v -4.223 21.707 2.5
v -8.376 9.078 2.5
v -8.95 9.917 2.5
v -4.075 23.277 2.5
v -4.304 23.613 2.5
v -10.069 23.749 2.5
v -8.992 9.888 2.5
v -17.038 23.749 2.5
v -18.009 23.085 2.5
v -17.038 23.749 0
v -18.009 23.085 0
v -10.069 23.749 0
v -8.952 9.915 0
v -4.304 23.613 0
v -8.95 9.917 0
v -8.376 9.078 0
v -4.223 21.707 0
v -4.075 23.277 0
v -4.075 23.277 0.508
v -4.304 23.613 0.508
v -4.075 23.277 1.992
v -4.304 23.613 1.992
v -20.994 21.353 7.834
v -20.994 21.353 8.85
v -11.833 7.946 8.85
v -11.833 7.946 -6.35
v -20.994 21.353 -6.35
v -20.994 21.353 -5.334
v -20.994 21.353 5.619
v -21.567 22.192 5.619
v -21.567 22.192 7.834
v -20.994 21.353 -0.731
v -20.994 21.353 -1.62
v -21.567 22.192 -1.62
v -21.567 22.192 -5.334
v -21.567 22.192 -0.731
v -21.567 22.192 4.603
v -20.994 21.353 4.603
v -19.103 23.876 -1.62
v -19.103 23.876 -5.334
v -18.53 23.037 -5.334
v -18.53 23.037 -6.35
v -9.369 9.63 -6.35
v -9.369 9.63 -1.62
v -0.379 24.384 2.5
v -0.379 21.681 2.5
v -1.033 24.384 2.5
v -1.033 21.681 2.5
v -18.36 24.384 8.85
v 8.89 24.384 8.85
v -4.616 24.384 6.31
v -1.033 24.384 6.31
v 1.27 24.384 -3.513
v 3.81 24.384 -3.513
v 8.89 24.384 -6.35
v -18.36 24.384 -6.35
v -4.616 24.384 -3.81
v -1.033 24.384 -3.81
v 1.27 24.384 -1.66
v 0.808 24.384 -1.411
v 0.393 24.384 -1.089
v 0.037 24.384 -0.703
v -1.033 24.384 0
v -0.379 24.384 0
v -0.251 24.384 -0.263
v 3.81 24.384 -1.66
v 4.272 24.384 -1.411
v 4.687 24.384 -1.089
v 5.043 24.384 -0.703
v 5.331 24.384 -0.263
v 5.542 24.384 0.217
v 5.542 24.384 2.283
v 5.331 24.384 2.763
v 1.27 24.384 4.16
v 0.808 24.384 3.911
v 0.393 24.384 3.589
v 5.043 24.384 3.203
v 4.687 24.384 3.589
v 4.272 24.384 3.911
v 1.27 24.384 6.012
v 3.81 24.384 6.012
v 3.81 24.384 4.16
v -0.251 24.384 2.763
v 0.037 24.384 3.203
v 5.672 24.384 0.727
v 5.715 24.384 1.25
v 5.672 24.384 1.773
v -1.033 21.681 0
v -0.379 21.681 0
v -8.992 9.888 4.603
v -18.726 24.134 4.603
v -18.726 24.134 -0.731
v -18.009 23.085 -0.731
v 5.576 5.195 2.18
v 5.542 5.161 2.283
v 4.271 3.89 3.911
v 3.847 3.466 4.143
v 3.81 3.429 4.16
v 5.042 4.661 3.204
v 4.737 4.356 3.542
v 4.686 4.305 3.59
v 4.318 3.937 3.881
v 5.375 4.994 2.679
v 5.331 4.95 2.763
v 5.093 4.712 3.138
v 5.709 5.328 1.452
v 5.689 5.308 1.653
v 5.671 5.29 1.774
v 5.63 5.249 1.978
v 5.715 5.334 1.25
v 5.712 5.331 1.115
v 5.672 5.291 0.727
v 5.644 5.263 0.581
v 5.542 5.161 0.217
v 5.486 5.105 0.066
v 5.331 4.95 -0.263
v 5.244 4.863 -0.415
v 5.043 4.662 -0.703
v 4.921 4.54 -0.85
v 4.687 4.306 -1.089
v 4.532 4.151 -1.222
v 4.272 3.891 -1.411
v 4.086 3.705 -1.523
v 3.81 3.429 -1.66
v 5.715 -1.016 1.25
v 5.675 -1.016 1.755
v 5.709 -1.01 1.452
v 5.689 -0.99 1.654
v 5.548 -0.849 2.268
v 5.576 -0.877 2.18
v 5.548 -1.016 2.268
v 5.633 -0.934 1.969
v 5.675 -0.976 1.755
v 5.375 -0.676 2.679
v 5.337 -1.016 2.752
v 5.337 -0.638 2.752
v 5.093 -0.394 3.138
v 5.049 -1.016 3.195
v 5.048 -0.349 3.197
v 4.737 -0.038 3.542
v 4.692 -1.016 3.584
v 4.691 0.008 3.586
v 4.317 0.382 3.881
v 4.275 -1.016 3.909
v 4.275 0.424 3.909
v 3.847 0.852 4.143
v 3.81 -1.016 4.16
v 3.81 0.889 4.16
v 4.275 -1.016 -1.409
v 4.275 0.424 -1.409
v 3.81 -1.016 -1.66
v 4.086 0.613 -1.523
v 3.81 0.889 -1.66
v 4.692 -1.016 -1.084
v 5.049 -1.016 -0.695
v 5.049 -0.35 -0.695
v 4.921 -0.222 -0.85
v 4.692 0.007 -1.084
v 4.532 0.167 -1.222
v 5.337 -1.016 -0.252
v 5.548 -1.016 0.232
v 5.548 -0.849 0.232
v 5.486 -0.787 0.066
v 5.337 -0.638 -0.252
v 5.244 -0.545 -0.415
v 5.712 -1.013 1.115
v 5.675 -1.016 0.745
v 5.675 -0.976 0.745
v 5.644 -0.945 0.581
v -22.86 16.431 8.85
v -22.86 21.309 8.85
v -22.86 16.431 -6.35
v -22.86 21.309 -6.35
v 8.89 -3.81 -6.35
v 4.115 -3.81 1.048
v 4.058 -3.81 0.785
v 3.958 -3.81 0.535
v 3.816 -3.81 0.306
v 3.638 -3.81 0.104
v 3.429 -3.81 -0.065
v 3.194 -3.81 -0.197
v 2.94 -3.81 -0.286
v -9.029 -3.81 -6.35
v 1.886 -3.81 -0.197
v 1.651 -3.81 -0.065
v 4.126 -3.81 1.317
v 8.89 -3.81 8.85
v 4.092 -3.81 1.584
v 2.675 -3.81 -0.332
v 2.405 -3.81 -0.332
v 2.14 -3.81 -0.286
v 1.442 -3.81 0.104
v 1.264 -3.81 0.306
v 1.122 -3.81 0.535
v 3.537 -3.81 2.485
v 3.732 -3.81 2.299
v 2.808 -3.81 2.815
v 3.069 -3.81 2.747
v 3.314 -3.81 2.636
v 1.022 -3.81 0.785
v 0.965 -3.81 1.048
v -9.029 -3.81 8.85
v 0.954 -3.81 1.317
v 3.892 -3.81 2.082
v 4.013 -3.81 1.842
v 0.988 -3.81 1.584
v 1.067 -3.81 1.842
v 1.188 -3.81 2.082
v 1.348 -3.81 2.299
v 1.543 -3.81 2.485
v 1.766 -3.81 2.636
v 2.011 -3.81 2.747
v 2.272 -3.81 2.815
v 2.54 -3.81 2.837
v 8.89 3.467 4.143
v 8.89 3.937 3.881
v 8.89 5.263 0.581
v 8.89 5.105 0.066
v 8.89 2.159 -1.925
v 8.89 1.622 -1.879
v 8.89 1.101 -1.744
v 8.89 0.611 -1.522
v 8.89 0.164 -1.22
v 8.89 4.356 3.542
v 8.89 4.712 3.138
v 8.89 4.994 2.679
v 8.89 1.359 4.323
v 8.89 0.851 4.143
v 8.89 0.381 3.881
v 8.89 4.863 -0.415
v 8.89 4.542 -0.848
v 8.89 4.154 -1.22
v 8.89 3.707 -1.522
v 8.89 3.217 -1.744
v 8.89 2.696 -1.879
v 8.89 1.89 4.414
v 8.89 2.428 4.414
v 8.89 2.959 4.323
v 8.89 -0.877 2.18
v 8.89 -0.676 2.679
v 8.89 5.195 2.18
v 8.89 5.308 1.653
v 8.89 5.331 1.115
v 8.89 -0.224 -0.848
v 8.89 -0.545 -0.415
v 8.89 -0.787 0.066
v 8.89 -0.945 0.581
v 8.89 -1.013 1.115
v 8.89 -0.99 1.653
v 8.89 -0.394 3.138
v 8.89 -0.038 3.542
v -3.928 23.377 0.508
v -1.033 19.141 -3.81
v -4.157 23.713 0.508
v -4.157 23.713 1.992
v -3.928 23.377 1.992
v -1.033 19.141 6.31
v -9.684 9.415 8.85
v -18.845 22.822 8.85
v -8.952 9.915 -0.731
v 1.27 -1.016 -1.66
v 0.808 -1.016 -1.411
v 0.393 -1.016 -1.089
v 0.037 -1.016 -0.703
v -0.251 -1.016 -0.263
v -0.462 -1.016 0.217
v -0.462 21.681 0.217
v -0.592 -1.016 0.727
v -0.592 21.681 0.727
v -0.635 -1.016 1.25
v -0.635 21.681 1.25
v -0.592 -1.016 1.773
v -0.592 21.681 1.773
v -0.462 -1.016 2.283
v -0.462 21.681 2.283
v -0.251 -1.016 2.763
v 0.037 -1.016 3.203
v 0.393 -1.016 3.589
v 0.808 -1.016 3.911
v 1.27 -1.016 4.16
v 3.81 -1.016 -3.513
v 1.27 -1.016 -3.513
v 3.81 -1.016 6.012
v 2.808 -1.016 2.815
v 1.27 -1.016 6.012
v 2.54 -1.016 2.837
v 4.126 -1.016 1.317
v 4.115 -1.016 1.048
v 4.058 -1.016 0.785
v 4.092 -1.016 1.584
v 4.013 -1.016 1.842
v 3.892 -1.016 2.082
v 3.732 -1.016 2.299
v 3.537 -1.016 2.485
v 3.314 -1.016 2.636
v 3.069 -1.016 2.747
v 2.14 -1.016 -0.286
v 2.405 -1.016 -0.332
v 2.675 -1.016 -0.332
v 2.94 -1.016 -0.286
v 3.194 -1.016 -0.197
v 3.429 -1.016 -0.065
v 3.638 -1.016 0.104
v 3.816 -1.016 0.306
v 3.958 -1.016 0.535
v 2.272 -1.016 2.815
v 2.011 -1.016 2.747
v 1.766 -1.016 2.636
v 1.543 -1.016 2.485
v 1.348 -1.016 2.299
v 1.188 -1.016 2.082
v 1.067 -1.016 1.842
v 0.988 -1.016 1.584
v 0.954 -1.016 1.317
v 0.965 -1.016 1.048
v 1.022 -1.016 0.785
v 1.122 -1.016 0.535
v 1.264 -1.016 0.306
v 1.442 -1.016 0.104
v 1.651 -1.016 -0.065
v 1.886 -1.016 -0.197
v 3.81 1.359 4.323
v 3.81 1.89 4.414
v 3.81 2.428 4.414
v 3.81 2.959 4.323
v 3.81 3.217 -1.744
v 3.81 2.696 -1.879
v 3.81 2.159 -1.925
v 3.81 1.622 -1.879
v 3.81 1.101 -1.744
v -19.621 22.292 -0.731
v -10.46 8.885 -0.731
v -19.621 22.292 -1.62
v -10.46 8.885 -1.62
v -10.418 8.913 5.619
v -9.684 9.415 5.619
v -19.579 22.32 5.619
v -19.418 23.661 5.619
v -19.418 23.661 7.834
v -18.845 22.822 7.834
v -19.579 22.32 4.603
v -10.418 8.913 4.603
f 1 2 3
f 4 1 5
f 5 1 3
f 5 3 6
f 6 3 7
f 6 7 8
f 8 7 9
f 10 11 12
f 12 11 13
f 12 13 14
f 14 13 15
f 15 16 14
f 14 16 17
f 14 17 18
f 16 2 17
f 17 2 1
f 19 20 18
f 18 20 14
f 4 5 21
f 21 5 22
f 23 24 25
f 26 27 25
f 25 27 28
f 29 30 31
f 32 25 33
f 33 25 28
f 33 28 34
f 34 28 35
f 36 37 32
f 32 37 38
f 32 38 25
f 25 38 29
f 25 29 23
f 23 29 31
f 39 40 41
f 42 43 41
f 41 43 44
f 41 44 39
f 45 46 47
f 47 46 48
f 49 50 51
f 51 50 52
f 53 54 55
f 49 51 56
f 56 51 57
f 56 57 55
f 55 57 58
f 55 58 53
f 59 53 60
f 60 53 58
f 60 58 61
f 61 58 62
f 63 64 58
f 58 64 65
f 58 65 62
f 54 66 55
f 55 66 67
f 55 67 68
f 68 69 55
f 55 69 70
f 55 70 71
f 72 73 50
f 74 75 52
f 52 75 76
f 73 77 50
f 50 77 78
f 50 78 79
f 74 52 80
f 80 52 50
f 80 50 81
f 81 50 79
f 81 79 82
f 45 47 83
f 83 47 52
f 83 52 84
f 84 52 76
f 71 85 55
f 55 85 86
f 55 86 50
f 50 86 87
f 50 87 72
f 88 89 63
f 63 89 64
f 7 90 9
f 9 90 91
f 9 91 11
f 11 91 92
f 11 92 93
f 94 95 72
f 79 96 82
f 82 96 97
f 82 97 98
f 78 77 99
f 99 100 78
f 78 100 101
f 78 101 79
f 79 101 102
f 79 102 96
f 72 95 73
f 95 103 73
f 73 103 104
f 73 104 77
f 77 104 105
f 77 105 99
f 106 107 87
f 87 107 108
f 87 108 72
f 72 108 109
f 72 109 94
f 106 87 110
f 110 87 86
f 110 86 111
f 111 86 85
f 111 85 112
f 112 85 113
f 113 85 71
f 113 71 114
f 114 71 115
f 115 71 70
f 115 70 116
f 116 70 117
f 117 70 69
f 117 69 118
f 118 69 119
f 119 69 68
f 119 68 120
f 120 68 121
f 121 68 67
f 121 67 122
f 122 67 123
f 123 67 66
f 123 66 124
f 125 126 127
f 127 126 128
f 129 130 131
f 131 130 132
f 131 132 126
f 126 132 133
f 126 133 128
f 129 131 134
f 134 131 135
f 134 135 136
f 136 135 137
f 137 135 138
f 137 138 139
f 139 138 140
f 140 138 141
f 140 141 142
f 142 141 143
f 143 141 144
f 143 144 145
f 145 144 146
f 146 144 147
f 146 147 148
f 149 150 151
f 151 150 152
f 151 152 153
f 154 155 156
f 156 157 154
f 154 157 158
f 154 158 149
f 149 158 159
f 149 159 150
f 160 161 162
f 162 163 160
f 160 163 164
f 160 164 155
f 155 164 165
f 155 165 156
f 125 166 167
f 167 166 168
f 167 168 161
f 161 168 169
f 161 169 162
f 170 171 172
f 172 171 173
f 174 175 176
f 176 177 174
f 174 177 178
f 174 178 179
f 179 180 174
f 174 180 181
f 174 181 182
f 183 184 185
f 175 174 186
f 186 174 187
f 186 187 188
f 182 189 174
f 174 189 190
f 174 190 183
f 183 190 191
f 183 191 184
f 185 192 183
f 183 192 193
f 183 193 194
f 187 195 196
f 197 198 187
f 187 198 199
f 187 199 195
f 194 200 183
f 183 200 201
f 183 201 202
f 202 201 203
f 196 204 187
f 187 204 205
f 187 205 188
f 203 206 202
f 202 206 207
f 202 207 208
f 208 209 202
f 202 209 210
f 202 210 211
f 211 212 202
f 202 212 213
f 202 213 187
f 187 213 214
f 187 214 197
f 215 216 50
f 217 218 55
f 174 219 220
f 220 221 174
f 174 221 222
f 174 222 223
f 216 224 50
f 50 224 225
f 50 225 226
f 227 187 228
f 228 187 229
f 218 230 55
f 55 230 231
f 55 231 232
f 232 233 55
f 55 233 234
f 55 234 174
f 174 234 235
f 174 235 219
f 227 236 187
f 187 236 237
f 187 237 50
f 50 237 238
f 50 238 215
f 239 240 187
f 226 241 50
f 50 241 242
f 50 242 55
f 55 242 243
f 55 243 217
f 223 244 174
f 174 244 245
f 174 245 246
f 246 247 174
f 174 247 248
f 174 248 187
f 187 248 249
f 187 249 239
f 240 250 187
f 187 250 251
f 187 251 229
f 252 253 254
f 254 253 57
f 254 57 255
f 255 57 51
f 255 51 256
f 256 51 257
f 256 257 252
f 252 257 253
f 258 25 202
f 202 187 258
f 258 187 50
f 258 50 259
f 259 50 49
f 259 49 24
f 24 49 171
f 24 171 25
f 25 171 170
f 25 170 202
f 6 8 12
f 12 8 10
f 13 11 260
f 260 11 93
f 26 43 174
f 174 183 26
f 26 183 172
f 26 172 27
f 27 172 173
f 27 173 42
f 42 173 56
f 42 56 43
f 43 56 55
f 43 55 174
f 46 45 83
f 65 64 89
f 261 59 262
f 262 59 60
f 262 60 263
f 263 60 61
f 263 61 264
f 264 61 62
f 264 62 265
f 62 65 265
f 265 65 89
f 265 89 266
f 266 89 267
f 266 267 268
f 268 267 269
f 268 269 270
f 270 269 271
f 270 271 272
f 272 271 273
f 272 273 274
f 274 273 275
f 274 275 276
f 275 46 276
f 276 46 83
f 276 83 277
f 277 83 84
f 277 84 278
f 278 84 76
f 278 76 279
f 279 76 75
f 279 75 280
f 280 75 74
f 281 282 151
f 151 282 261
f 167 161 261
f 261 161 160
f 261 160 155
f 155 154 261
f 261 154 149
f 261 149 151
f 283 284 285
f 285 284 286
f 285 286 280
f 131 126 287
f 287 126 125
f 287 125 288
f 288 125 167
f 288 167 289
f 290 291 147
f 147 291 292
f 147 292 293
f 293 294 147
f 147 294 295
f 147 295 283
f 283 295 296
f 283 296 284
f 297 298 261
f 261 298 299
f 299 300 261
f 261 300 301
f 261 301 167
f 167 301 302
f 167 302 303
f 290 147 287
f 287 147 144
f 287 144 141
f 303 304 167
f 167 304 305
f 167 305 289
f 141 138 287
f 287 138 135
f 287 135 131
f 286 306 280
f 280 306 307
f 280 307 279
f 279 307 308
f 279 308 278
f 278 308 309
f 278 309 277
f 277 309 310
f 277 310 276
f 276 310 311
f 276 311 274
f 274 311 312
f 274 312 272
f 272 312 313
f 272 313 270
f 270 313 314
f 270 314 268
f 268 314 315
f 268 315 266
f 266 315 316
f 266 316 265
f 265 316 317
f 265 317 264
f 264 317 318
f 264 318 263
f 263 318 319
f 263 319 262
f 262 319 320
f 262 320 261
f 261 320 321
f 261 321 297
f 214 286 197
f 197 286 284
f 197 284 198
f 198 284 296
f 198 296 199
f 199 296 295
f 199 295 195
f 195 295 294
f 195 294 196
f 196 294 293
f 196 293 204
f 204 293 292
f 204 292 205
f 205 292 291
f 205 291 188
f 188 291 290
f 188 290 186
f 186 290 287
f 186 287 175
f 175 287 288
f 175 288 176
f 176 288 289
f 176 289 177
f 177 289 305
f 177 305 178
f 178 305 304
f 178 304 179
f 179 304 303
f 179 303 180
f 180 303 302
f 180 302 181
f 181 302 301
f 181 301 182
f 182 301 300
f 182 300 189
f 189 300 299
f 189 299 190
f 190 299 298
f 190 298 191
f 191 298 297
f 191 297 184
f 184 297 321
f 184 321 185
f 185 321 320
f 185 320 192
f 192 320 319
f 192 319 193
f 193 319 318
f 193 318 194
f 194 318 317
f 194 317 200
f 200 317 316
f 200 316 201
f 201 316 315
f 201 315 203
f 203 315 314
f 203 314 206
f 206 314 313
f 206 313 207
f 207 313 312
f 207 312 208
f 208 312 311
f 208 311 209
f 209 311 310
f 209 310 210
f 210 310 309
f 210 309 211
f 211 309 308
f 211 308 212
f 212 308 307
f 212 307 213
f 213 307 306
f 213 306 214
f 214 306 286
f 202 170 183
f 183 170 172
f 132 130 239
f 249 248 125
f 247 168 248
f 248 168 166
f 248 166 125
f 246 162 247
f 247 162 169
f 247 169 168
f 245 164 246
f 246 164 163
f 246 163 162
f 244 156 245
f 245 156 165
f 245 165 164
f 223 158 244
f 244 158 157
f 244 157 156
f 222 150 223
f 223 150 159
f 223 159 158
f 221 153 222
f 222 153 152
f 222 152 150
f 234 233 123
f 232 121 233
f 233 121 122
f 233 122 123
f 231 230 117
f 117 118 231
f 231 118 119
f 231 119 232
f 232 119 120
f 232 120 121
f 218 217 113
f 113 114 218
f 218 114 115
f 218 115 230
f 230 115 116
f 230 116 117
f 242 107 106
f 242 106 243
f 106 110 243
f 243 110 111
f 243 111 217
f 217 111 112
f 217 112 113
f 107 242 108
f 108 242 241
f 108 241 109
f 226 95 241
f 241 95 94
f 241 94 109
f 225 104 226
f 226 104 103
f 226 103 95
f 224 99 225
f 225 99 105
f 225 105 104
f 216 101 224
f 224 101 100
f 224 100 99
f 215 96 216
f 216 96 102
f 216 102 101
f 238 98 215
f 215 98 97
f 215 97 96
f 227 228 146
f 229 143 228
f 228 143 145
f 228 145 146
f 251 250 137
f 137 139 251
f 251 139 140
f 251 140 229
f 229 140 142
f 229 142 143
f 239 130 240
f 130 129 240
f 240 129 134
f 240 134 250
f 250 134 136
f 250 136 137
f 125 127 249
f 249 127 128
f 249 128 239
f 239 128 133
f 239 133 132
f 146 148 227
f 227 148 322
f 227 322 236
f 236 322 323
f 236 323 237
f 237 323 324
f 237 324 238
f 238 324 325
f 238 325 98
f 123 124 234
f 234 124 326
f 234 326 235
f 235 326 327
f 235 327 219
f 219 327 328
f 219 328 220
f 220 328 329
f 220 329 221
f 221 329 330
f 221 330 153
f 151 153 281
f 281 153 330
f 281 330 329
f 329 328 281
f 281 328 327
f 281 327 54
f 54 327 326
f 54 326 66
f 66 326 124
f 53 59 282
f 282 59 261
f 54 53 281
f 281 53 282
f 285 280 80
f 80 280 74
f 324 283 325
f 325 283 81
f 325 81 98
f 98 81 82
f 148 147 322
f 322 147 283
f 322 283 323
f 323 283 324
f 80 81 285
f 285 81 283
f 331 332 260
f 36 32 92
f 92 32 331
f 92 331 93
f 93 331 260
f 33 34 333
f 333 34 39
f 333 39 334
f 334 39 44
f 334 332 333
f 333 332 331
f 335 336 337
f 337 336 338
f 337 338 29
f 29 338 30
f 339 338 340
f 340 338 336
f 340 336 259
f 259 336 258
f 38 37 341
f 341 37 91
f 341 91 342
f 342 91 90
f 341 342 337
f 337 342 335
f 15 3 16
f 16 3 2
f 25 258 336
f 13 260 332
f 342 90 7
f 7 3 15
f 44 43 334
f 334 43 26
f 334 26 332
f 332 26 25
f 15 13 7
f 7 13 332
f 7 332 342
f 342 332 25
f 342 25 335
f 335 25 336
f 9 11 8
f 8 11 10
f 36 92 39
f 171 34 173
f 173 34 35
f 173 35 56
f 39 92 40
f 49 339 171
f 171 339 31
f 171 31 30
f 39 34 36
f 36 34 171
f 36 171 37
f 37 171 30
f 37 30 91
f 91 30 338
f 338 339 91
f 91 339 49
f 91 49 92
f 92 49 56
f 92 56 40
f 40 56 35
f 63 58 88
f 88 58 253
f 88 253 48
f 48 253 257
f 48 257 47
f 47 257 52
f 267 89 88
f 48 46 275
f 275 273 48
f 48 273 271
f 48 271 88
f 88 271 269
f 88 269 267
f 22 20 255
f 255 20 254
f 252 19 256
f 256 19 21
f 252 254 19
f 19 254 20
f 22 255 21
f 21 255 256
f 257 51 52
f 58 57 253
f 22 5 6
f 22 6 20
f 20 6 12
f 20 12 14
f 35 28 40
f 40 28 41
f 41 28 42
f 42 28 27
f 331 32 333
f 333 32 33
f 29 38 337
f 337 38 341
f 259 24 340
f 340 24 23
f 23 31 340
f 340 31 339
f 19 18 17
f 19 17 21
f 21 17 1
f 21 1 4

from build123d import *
from build123d.topology import SkipClean

# Parameters (mm, degrees)
BOSS_EXTRUDE1_DEPTH     = 2.5
BOSS_EXTRUDE1_2_DEPTH   = 2.5
BOSS_EXTRUDE2_DEPTH     = 6.35
BOSS_EXTRUDE3_DEPTH     = 6.35
SKETCH4_R               = 3.175
CUT_EXTRUDE1_DEPTH      = 25.4
SKETCH5_R               = 1.5875
CUT_EXTRUDE2_DEPTH      = 25.4
CUT_EXTRUDE3_DEPTH      = 25.4
CUT_EXTRUDE4_REACH      = 43
CUT_EXTRUDE4_END_RADIUS = 3.175
CUT_EXTRUDE5_REACH      = 39.36
SKETCH8_W               = 2.54
SKETCH8_H               = 9.525
SKETCH9_W               = 0.508
SKETCH9_H               = 15.2
BOSS_EXTRUDE4_DEPTH     = 17
BOSS_EXTRUDE5_DEPTH     = 1.016
SKETCH11_W              = 1.176658287
SKETCH11_H              = 2.5
SKETCH11_W_2            = 2.433787944
SKETCH11_H_2            = 15.2
BOSS_EXTRUDE6_DEPTH     = 1.27
CUT_EXTRUDE6_DEPTH      = 38.864332241
BOSS_EXTRUDE7_START     = 2.54
BOSS_EXTRUDE7_DEPTH     = 2.54
BOSS_EXTRUDE8_DEPTH     = 2.54
BOSS_EXTRUDE9_DEPTH     = 0.508
BOSS_EXTRUDE10_DEPTH    = 0.508
CUT_EXTRUDE7_DEPTH      = 3.81
CUT_EXTRUDE8_DEPTH      = 3.81
BOSS_EXTRUDE11_DEPTH    = 3.81
SKETCH21_W              = 1.016
SKETCH21_H              = 1.016
SKETCH21_W_2            = 0.889
BOSS_EXTRUDE12_DEPTH    = 3.302
BOSS_EXTRUDE13_DEPTH    = 3.81


with BuildPart() as part:
    # Sketch1 → Boss-Extrude1 (new body)
    with BuildSketch(Plane.XY):
        Polygon((5.08, 0), (0, 0), (0, 19.141079028), (-1.033059908, 19.141079028), (-3.75575709, 23.125698967), (-8.376397661, 9.077684872), (-11.679025045, 6.820994294), (-21.26996, 20.857160675), (-22.86, 19.770683798), (-22.86, -3.81), (8.89, -3.81), (8.89, 24.384), (5.08, 24.384), align=None)
    extrude(amount=BOSS_EXTRUDE1_DEPTH)



with BuildPart() as body_2:
    # Sketch1 → Boss-Extrude1 2 (new body)
    with BuildSketch(Plane.XY):
        Polygon((-10.069369191, 23.749), (-4.328956497, 23.964566322), (-4.615556201, 24.384), (-16.108492032, 24.384), (-17.03780348, 23.749), align=None)
    extrude(amount=BOSS_EXTRUDE1_2_DEPTH)


with BuildPart() as part_1:
    add(part.part)

    add(body_2.part)  # Boss-Extrude2 merges body 2
    # Sketch2 → Boss-Extrude2 (add)
    with BuildSketch(Plane.XY.offset(2.5)):
        Polygon((-11.679025045, 6.820994294), (-21.26996, 20.857160675), (-22.86, 19.770683798), (-22.86, -3.81), (8.89, -3.81), (8.89, 24.384), (5.08, 24.384), (5.08, 0), (0, 0), (0, 19.141079028), (-1.033059908, 19.141079028), (-3.75575709, 23.125698967), (-8.376397661, 9.077684872), align=None)
        Polygon((-16.108492032, 24.384), (-18.00931945, 23.085161582), (-8.418384495, 9.048995201), (-8.376397661, 9.077684872), (-3.75575709, 23.125698967), (-1.033059908, 19.141079028), (0, 19.141079028), (0, 0), (5.08, 0), (5.08, 24.384), align=None)
    extrude(amount=BOSS_EXTRUDE2_DEPTH)

    # Sketch3 → Boss-Extrude3 (add)
    with BuildSketch(Plane(origin=(0, 0, 0), x_dir=(-1, 0, 0), z_dir=(0, 0, -1))):
        Polygon((-8.89, 24.384), (-8.89, -3.81), (22.86, -3.81), (22.86, 19.770683798), (21.26996, 20.857160675), (11.679025045, 6.820994294), (8.376397661, 9.077684872), (18.00931945, 23.085161582), (16.108492032, 24.384), align=None)
    extrude(amount=BOSS_EXTRUDE3_DEPTH)

    # Sketch4 → Cut-Extrude1 (cut)
    with BuildSketch(Plane(origin=(0, 24.384, 0), x_dir=(1, 0, 0), z_dir=(0, 1, 0))):
        with Locations(Location((2.54, -1.25, 0), (0, 0, 270))):
            Circle(SKETCH4_R)
    extrude(amount=-CUT_EXTRUDE1_DEPTH, mode=Mode.SUBTRACT)

    # Sketch5 → Cut-Extrude2 (cut)
    with BuildSketch(Plane(origin=(0, -1.016, 0), x_dir=(1, 0, 0), z_dir=(0, 1, 0))):
        with Locations(Location((2.54, -1.25, 0), (0, 0, 270))):
            Circle(SKETCH5_R)
    extrude(amount=-CUT_EXTRUDE2_DEPTH, mode=Mode.SUBTRACT)

    # Sketch6 → Cut-Extrude3 (cut)
    with BuildSketch(Plane.XY.offset(8.85)):
        Polygon((-22.86, 16.430904611), (-9.029357481, -3.81), (-22.86, -3.81), align=None)
    extrude(amount=-CUT_EXTRUDE3_DEPTH, mode=Mode.SUBTRACT)

    # Cut-Extrude4: up to this cylinder (the profile starts outside it)
    with SkipClean():  # the faces are left unmerged after this step: merging them gives an invalid solid
        cut_extrude4_end = Plane(origin=(2.54, 2.159, 1.25), z_dir=(0, 1, 0)) * Cylinder(CUT_EXTRUDE4_END_RADIUS, 96.045024, mode=Mode.PRIVATE)
        # Sketch7 → Cut-Extrude4 (cut, up to the surface)
        with BuildSketch(Plane(origin=(8.89, 0, 0), x_dir=(0, 0, -1), z_dir=(1, 0, 0)), mode=Mode.PRIVATE) as cut_extrude4_sk1:
            with BuildLine():
                ThreePointArc((1.925, 2.159), (-1.25, 5.334), (-4.425, 2.159))
                Line((-4.425, 2.159), (1.925, 2.159))
            make_face()
        cut_extrude4_tool1 = extrude(cut_extrude4_sk1.sketch, amount=-CUT_EXTRUDE4_REACH, mode=Mode.PRIVATE) - cut_extrude4_end
        add(cut_extrude4_tool1.solids().sort_by_distance((8.89, 3.506512, 1.25))[0], mode=Mode.SUBTRACT)
        # Sketch7 → Cut-Extrude4 (cut, up to the surface)
        with BuildSketch(Plane(origin=(8.89, 0, 0), x_dir=(0, 0, -1), z_dir=(1, 0, 0)), mode=Mode.PRIVATE) as cut_extrude4_sk2:
            with BuildLine():
                Line((1.925, 2.159), (-4.425, 2.159))
                ThreePointArc((-4.425, 2.159), (-3.49506403, -0.08606403), (-1.25, -1.016))
                ThreePointArc((-1.25, -1.016), (0.99506403, -0.08606403), (1.925, 2.159))
            make_face()
        cut_extrude4_tool2 = extrude(cut_extrude4_sk2.sketch, amount=-CUT_EXTRUDE4_REACH, mode=Mode.PRIVATE) - cut_extrude4_end
        add(cut_extrude4_tool2.solids().sort_by_distance((8.89, 0.811488, 1.25))[0], mode=Mode.SUBTRACT)
        # Sketch7 → Cut-Extrude4 (cut, up to the surface)
        with BuildSketch(Plane(origin=(8.89, 0, 0), x_dir=(0, 0, -1), z_dir=(1, 0, 0)), mode=Mode.PRIVATE) as cut_extrude4_sk3:
            with BuildLine():
                ThreePointArc((1.925, 2.159), (-1.25, 5.334), (-4.425, 2.159))
                Line((-4.425, 2.159), (1.925, 2.159))
            make_face()
        cut_extrude4_tool3 = extrude(cut_extrude4_sk3.sketch, amount=-CUT_EXTRUDE4_REACH, mode=Mode.PRIVATE) - cut_extrude4_end
        add(cut_extrude4_tool3.solids().sort_by_distance((8.89, 3.506512, 1.25))[0], mode=Mode.SUBTRACT)
        # Sketch7 → Cut-Extrude4 (cut, up to the surface)
        with BuildSketch(Plane(origin=(8.89, 0, 0), x_dir=(0, 0, -1), z_dir=(1, 0, 0)), mode=Mode.PRIVATE) as cut_extrude4_sk4:
            with BuildLine():
                Line((1.925, 2.159), (-4.425, 2.159))
                ThreePointArc((-4.425, 2.159), (-3.49506403, -0.08606403), (-1.25, -1.016))
                ThreePointArc((-1.25, -1.016), (0.99506403, -0.08606403), (1.925, 2.159))
            make_face()
        cut_extrude4_tool4 = extrude(cut_extrude4_sk4.sketch, amount=-CUT_EXTRUDE4_REACH, mode=Mode.PRIVATE) - cut_extrude4_end
        add(cut_extrude4_tool4.solids().sort_by_distance((8.89, 0.811488, 1.25))[0], mode=Mode.SUBTRACT)

    # Cut-Extrude5: up to this face of the body (flat: up to its plane)
    cut_extrude5_end = Plane(part_1.part.faces().sort_by_distance((4.72156403, -1.016, 3.43156403))[0])
    # Sketch8 → Cut-Extrude5 (cut, up to the picked face)
    with BuildSketch(Plane(origin=(0, 24.384, 0), x_dir=(1, 0, 0), z_dir=(0, 1, 0)), mode=Mode.PRIVATE) as cut_extrude5_sk1:
        with Locations((2.54, -1.25)):
            Rectangle(SKETCH8_W, SKETCH8_H)
    cut_extrude5_tool1 = split(extrude(cut_extrude5_sk1.sketch, amount=-CUT_EXTRUDE5_REACH, mode=Mode.PRIVATE), bisect_by=cut_extrude5_end, keep=Keep.BOTH, mode=Mode.PRIVATE)
    add(cut_extrude5_tool1.solids().sort_by(Axis((2.54, 24.384, 1.25), (0, -1, 0)))[0], mode=Mode.SUBTRACT)

    # Sketch9 → Boss-Extrude4 (add)
    with BuildSketch(Plane(origin=(-6.894633763, 10.090176515, 0), x_dir=(0.825656845959394, 0.5641726444275594, 0), z_dir=(-0.5641726444275594, 0.825656845959394, 0))):
        with Locations((-5.540648594, -1.25)):
            Rectangle(SKETCH9_W, SKETCH9_H)
        Polygon((-1.794648594, 6.35), (-2.302648594, 6.35), (-2.302648594, 1.6202), (-3.623501238, 1.6202), (-3.623501238, 0.7312), (-1.794648594, 0.7312), align=None)
        Polygon((-1.845501238, -8.85), (-1.845501238, -4.6028), (-3.572648594, -4.6028), (-3.572648594, -5.6188), (-2.683648594, -5.6188), (-2.683648594, -8.85), align=None)
    extrude(amount=BOSS_EXTRUDE4_DEPTH)

    # Sketch10 → Boss-Extrude5 (add)
    with BuildSketch(Plane(origin=(-6.894633763, 10.090176515, 0), x_dir=(0.8256568459593948, 0.5641726444275585, 0), z_dir=(-0.5641726444275585, 0.8256568459593948, 0))):
        Polygon((-5.286648594, -8.85), (-2.683648594, -8.85), (-2.683648594, -5.6188), (-3.572648594, -5.6188), (-3.572648594, -4.6028), (-1.845501238, -4.6028), (-1.845501238, -2.5), (-1.794648594, -2.5), (-1.794648594, 0), (-1.794648594, 0.7312), (-3.623501238, 0.7312), (-3.623501238, 1.6202), (-2.302648594, 1.6202), (-2.302648594, 6.35), (-5.286648594, 6.35), align=None)
    extrude(amount=BOSS_EXTRUDE5_DEPTH)

    # Sketch11 → Boss-Extrude6 (add)
    with BuildSketch(Plane(origin=(-16.485568719, 24.126342896, 0), x_dir=(0.8256568459593935, 0.5641726444275603, 0), z_dir=(-0.5641726444275603, 0.8256568459593935, 0))):
        with Locations((-1.257172095, -1.25)):
            Rectangle(SKETCH11_W, SKETCH11_H)
        Polygon((-3.623501238, 1.6202), (-3.623501238, 0.7312), (-1.845501238, 0.7312), (-1.845501238, 0), (-0.668842951, 0), (-0.668842951, -2.5), (-1.845501238, -2.5), (-1.845501238, -4.6028), (-3.572648594, -4.6028), (-3.572648594, -5.6188), (-2.683648594, -5.6188), (-2.683648594, -8.85), (0.456699038, -8.85), (0.456699038, 6.35), (-2.302648594, 6.35), (-2.302648594, 1.6202), align=None)
        with Locations((-6.503542566, -1.25)):
            Rectangle(SKETCH11_W_2, SKETCH11_H_2)
    extrude(amount=BOSS_EXTRUDE6_DEPTH)

    # Sketch12 → Cut-Extrude6 (cut, through all)
    with BuildSketch(Plane.XY.offset(8.85)):
        Polygon((-16.108492032, 24.384), (-18.359576008, 24.384), (-16.82499129, 25.432584194), align=None)
        Polygon((-22.86, 19.770683798), (-22.86, 21.308853083), (-23.576499258, 20.819267993), align=None)
    extrude(amount=-CUT_EXTRUDE6_DEPTH, mode=Mode.SUBTRACT)

    # Sketch13 → Boss-Extrude7 (add)
    with BuildSketch(Plane(origin=(0, 19.141079028, 0), x_dir=(1, 0, 0), z_dir=(0, 1, 0)).offset(BOSS_EXTRUDE7_START)):
        with BuildLine():
            Line((-0.378582704, 0), (-1.033059908, 0))
            Line((-1.033059908, 0), (-1.033059908, -2.5))
            Line((-1.033059908, -2.5), (-0.378582704, -2.5))
            ThreePointArc((-0.378582704, -2.5), (-0.635, -1.25), (-0.378582704, 0))
        make_face()
    extrude(amount=-BOSS_EXTRUDE7_DEPTH)

    # Sketch15 → Boss-Extrude8 (add)
    with BuildSketch(Plane.XY):
        Polygon((-4.156996675, 23.712906116), (-4.328956497, 23.964566322), (-4.538912798, 23.956681957), (-4.303798462, 23.612596219), align=None)
        Polygon((-3.75575709, 23.125698967), (-3.927716912, 23.377359173), (-4.0745187, 23.277049277), (-3.825732396, 22.912954853), align=None)
    extrude(amount=BOSS_EXTRUDE8_DEPTH)

    # Sketch16 → Boss-Extrude9 (add)
    with BuildSketch(Plane.XY):
        Polygon((-4.0745187, 23.277049277), (-4.303798462, 23.612596219), (-4.156996675, 23.712906116), (-3.927716912, 23.377359173), align=None)
    extrude(amount=BOSS_EXTRUDE9_DEPTH)

    # Sketch17 → Boss-Extrude10 (add)
    with BuildSketch(Plane(origin=(0, 0, 2.5), x_dir=(-1, 0, 0), z_dir=(0, 0, -1))):
        Polygon((4.0745187, 23.277049277), (4.303798462, 23.612596219), (4.156996675, 23.712906116), (3.927716912, 23.377359173), align=None)
    extrude(amount=BOSS_EXTRUDE10_DEPTH)

    # Sketch18 → Cut-Extrude7 (cut)
    with BuildSketch(Plane(origin=(0, 0, 2.5), x_dir=(-1, 0, 0), z_dir=(0, 0, -1))):
        Polygon((1.033059908, 24.384), (1.033059908, 21.681079028), (1.033059908, 19.141079028), (4.615556201, 24.384), align=None)
    extrude(amount=-CUT_EXTRUDE7_DEPTH, mode=Mode.SUBTRACT)

    # Sketch19 → Cut-Extrude8 (cut)
    with BuildSketch(Plane.XY):
        Polygon((-1.033059908, 19.141079028), (-1.033059908, 21.681079028), (-1.033059908, 24.384), (-4.615556201, 24.384), align=None)
    extrude(amount=-CUT_EXTRUDE8_DEPTH, mode=Mode.SUBTRACT)

    # Sketch20 → Boss-Extrude11 (add)
    with BuildSketch(Plane.XY):
        Polygon((-10.069369191, 23.749), (-4.303798462, 23.612596219), (-4.538912798, 23.956681957), align=None)
    extrude(amount=BOSS_EXTRUDE11_DEPTH)

    # Sketch21 → Boss-Extrude12 (add)
    with BuildSketch(Plane(origin=(-4.364957604, -2.982582517, 0), x_dir=(0, 0, -1), z_dir=(0.8256568459593941, 0.5641726444275595, 0))):
        with Locations((5.842, 29.982787079)):
            Rectangle(SKETCH21_W, SKETCH21_H)
        with Locations((1.1757, 29.982787079)):
            Rectangle(SKETCH21_W_2, SKETCH21_H)
        with Locations((-5.1108, 29.982787079)):
            Rectangle(SKETCH21_W, SKETCH21_H)
        with Locations((-8.342, 29.982787079)):
            Rectangle(SKETCH21_W, SKETCH21_H)
    extrude(amount=BOSS_EXTRUDE12_DEPTH)

    # Sketch22 → Boss-Extrude13 (add)
    with BuildSketch(Plane.XY):
        Polygon((-3.825732396, 22.912954853), (-4.0745187, 23.277049277), (-4.222544103, 21.706538478), align=None)
    extrude(amount=BOSS_EXTRUDE13_DEPTH)


solid = part_1.part
